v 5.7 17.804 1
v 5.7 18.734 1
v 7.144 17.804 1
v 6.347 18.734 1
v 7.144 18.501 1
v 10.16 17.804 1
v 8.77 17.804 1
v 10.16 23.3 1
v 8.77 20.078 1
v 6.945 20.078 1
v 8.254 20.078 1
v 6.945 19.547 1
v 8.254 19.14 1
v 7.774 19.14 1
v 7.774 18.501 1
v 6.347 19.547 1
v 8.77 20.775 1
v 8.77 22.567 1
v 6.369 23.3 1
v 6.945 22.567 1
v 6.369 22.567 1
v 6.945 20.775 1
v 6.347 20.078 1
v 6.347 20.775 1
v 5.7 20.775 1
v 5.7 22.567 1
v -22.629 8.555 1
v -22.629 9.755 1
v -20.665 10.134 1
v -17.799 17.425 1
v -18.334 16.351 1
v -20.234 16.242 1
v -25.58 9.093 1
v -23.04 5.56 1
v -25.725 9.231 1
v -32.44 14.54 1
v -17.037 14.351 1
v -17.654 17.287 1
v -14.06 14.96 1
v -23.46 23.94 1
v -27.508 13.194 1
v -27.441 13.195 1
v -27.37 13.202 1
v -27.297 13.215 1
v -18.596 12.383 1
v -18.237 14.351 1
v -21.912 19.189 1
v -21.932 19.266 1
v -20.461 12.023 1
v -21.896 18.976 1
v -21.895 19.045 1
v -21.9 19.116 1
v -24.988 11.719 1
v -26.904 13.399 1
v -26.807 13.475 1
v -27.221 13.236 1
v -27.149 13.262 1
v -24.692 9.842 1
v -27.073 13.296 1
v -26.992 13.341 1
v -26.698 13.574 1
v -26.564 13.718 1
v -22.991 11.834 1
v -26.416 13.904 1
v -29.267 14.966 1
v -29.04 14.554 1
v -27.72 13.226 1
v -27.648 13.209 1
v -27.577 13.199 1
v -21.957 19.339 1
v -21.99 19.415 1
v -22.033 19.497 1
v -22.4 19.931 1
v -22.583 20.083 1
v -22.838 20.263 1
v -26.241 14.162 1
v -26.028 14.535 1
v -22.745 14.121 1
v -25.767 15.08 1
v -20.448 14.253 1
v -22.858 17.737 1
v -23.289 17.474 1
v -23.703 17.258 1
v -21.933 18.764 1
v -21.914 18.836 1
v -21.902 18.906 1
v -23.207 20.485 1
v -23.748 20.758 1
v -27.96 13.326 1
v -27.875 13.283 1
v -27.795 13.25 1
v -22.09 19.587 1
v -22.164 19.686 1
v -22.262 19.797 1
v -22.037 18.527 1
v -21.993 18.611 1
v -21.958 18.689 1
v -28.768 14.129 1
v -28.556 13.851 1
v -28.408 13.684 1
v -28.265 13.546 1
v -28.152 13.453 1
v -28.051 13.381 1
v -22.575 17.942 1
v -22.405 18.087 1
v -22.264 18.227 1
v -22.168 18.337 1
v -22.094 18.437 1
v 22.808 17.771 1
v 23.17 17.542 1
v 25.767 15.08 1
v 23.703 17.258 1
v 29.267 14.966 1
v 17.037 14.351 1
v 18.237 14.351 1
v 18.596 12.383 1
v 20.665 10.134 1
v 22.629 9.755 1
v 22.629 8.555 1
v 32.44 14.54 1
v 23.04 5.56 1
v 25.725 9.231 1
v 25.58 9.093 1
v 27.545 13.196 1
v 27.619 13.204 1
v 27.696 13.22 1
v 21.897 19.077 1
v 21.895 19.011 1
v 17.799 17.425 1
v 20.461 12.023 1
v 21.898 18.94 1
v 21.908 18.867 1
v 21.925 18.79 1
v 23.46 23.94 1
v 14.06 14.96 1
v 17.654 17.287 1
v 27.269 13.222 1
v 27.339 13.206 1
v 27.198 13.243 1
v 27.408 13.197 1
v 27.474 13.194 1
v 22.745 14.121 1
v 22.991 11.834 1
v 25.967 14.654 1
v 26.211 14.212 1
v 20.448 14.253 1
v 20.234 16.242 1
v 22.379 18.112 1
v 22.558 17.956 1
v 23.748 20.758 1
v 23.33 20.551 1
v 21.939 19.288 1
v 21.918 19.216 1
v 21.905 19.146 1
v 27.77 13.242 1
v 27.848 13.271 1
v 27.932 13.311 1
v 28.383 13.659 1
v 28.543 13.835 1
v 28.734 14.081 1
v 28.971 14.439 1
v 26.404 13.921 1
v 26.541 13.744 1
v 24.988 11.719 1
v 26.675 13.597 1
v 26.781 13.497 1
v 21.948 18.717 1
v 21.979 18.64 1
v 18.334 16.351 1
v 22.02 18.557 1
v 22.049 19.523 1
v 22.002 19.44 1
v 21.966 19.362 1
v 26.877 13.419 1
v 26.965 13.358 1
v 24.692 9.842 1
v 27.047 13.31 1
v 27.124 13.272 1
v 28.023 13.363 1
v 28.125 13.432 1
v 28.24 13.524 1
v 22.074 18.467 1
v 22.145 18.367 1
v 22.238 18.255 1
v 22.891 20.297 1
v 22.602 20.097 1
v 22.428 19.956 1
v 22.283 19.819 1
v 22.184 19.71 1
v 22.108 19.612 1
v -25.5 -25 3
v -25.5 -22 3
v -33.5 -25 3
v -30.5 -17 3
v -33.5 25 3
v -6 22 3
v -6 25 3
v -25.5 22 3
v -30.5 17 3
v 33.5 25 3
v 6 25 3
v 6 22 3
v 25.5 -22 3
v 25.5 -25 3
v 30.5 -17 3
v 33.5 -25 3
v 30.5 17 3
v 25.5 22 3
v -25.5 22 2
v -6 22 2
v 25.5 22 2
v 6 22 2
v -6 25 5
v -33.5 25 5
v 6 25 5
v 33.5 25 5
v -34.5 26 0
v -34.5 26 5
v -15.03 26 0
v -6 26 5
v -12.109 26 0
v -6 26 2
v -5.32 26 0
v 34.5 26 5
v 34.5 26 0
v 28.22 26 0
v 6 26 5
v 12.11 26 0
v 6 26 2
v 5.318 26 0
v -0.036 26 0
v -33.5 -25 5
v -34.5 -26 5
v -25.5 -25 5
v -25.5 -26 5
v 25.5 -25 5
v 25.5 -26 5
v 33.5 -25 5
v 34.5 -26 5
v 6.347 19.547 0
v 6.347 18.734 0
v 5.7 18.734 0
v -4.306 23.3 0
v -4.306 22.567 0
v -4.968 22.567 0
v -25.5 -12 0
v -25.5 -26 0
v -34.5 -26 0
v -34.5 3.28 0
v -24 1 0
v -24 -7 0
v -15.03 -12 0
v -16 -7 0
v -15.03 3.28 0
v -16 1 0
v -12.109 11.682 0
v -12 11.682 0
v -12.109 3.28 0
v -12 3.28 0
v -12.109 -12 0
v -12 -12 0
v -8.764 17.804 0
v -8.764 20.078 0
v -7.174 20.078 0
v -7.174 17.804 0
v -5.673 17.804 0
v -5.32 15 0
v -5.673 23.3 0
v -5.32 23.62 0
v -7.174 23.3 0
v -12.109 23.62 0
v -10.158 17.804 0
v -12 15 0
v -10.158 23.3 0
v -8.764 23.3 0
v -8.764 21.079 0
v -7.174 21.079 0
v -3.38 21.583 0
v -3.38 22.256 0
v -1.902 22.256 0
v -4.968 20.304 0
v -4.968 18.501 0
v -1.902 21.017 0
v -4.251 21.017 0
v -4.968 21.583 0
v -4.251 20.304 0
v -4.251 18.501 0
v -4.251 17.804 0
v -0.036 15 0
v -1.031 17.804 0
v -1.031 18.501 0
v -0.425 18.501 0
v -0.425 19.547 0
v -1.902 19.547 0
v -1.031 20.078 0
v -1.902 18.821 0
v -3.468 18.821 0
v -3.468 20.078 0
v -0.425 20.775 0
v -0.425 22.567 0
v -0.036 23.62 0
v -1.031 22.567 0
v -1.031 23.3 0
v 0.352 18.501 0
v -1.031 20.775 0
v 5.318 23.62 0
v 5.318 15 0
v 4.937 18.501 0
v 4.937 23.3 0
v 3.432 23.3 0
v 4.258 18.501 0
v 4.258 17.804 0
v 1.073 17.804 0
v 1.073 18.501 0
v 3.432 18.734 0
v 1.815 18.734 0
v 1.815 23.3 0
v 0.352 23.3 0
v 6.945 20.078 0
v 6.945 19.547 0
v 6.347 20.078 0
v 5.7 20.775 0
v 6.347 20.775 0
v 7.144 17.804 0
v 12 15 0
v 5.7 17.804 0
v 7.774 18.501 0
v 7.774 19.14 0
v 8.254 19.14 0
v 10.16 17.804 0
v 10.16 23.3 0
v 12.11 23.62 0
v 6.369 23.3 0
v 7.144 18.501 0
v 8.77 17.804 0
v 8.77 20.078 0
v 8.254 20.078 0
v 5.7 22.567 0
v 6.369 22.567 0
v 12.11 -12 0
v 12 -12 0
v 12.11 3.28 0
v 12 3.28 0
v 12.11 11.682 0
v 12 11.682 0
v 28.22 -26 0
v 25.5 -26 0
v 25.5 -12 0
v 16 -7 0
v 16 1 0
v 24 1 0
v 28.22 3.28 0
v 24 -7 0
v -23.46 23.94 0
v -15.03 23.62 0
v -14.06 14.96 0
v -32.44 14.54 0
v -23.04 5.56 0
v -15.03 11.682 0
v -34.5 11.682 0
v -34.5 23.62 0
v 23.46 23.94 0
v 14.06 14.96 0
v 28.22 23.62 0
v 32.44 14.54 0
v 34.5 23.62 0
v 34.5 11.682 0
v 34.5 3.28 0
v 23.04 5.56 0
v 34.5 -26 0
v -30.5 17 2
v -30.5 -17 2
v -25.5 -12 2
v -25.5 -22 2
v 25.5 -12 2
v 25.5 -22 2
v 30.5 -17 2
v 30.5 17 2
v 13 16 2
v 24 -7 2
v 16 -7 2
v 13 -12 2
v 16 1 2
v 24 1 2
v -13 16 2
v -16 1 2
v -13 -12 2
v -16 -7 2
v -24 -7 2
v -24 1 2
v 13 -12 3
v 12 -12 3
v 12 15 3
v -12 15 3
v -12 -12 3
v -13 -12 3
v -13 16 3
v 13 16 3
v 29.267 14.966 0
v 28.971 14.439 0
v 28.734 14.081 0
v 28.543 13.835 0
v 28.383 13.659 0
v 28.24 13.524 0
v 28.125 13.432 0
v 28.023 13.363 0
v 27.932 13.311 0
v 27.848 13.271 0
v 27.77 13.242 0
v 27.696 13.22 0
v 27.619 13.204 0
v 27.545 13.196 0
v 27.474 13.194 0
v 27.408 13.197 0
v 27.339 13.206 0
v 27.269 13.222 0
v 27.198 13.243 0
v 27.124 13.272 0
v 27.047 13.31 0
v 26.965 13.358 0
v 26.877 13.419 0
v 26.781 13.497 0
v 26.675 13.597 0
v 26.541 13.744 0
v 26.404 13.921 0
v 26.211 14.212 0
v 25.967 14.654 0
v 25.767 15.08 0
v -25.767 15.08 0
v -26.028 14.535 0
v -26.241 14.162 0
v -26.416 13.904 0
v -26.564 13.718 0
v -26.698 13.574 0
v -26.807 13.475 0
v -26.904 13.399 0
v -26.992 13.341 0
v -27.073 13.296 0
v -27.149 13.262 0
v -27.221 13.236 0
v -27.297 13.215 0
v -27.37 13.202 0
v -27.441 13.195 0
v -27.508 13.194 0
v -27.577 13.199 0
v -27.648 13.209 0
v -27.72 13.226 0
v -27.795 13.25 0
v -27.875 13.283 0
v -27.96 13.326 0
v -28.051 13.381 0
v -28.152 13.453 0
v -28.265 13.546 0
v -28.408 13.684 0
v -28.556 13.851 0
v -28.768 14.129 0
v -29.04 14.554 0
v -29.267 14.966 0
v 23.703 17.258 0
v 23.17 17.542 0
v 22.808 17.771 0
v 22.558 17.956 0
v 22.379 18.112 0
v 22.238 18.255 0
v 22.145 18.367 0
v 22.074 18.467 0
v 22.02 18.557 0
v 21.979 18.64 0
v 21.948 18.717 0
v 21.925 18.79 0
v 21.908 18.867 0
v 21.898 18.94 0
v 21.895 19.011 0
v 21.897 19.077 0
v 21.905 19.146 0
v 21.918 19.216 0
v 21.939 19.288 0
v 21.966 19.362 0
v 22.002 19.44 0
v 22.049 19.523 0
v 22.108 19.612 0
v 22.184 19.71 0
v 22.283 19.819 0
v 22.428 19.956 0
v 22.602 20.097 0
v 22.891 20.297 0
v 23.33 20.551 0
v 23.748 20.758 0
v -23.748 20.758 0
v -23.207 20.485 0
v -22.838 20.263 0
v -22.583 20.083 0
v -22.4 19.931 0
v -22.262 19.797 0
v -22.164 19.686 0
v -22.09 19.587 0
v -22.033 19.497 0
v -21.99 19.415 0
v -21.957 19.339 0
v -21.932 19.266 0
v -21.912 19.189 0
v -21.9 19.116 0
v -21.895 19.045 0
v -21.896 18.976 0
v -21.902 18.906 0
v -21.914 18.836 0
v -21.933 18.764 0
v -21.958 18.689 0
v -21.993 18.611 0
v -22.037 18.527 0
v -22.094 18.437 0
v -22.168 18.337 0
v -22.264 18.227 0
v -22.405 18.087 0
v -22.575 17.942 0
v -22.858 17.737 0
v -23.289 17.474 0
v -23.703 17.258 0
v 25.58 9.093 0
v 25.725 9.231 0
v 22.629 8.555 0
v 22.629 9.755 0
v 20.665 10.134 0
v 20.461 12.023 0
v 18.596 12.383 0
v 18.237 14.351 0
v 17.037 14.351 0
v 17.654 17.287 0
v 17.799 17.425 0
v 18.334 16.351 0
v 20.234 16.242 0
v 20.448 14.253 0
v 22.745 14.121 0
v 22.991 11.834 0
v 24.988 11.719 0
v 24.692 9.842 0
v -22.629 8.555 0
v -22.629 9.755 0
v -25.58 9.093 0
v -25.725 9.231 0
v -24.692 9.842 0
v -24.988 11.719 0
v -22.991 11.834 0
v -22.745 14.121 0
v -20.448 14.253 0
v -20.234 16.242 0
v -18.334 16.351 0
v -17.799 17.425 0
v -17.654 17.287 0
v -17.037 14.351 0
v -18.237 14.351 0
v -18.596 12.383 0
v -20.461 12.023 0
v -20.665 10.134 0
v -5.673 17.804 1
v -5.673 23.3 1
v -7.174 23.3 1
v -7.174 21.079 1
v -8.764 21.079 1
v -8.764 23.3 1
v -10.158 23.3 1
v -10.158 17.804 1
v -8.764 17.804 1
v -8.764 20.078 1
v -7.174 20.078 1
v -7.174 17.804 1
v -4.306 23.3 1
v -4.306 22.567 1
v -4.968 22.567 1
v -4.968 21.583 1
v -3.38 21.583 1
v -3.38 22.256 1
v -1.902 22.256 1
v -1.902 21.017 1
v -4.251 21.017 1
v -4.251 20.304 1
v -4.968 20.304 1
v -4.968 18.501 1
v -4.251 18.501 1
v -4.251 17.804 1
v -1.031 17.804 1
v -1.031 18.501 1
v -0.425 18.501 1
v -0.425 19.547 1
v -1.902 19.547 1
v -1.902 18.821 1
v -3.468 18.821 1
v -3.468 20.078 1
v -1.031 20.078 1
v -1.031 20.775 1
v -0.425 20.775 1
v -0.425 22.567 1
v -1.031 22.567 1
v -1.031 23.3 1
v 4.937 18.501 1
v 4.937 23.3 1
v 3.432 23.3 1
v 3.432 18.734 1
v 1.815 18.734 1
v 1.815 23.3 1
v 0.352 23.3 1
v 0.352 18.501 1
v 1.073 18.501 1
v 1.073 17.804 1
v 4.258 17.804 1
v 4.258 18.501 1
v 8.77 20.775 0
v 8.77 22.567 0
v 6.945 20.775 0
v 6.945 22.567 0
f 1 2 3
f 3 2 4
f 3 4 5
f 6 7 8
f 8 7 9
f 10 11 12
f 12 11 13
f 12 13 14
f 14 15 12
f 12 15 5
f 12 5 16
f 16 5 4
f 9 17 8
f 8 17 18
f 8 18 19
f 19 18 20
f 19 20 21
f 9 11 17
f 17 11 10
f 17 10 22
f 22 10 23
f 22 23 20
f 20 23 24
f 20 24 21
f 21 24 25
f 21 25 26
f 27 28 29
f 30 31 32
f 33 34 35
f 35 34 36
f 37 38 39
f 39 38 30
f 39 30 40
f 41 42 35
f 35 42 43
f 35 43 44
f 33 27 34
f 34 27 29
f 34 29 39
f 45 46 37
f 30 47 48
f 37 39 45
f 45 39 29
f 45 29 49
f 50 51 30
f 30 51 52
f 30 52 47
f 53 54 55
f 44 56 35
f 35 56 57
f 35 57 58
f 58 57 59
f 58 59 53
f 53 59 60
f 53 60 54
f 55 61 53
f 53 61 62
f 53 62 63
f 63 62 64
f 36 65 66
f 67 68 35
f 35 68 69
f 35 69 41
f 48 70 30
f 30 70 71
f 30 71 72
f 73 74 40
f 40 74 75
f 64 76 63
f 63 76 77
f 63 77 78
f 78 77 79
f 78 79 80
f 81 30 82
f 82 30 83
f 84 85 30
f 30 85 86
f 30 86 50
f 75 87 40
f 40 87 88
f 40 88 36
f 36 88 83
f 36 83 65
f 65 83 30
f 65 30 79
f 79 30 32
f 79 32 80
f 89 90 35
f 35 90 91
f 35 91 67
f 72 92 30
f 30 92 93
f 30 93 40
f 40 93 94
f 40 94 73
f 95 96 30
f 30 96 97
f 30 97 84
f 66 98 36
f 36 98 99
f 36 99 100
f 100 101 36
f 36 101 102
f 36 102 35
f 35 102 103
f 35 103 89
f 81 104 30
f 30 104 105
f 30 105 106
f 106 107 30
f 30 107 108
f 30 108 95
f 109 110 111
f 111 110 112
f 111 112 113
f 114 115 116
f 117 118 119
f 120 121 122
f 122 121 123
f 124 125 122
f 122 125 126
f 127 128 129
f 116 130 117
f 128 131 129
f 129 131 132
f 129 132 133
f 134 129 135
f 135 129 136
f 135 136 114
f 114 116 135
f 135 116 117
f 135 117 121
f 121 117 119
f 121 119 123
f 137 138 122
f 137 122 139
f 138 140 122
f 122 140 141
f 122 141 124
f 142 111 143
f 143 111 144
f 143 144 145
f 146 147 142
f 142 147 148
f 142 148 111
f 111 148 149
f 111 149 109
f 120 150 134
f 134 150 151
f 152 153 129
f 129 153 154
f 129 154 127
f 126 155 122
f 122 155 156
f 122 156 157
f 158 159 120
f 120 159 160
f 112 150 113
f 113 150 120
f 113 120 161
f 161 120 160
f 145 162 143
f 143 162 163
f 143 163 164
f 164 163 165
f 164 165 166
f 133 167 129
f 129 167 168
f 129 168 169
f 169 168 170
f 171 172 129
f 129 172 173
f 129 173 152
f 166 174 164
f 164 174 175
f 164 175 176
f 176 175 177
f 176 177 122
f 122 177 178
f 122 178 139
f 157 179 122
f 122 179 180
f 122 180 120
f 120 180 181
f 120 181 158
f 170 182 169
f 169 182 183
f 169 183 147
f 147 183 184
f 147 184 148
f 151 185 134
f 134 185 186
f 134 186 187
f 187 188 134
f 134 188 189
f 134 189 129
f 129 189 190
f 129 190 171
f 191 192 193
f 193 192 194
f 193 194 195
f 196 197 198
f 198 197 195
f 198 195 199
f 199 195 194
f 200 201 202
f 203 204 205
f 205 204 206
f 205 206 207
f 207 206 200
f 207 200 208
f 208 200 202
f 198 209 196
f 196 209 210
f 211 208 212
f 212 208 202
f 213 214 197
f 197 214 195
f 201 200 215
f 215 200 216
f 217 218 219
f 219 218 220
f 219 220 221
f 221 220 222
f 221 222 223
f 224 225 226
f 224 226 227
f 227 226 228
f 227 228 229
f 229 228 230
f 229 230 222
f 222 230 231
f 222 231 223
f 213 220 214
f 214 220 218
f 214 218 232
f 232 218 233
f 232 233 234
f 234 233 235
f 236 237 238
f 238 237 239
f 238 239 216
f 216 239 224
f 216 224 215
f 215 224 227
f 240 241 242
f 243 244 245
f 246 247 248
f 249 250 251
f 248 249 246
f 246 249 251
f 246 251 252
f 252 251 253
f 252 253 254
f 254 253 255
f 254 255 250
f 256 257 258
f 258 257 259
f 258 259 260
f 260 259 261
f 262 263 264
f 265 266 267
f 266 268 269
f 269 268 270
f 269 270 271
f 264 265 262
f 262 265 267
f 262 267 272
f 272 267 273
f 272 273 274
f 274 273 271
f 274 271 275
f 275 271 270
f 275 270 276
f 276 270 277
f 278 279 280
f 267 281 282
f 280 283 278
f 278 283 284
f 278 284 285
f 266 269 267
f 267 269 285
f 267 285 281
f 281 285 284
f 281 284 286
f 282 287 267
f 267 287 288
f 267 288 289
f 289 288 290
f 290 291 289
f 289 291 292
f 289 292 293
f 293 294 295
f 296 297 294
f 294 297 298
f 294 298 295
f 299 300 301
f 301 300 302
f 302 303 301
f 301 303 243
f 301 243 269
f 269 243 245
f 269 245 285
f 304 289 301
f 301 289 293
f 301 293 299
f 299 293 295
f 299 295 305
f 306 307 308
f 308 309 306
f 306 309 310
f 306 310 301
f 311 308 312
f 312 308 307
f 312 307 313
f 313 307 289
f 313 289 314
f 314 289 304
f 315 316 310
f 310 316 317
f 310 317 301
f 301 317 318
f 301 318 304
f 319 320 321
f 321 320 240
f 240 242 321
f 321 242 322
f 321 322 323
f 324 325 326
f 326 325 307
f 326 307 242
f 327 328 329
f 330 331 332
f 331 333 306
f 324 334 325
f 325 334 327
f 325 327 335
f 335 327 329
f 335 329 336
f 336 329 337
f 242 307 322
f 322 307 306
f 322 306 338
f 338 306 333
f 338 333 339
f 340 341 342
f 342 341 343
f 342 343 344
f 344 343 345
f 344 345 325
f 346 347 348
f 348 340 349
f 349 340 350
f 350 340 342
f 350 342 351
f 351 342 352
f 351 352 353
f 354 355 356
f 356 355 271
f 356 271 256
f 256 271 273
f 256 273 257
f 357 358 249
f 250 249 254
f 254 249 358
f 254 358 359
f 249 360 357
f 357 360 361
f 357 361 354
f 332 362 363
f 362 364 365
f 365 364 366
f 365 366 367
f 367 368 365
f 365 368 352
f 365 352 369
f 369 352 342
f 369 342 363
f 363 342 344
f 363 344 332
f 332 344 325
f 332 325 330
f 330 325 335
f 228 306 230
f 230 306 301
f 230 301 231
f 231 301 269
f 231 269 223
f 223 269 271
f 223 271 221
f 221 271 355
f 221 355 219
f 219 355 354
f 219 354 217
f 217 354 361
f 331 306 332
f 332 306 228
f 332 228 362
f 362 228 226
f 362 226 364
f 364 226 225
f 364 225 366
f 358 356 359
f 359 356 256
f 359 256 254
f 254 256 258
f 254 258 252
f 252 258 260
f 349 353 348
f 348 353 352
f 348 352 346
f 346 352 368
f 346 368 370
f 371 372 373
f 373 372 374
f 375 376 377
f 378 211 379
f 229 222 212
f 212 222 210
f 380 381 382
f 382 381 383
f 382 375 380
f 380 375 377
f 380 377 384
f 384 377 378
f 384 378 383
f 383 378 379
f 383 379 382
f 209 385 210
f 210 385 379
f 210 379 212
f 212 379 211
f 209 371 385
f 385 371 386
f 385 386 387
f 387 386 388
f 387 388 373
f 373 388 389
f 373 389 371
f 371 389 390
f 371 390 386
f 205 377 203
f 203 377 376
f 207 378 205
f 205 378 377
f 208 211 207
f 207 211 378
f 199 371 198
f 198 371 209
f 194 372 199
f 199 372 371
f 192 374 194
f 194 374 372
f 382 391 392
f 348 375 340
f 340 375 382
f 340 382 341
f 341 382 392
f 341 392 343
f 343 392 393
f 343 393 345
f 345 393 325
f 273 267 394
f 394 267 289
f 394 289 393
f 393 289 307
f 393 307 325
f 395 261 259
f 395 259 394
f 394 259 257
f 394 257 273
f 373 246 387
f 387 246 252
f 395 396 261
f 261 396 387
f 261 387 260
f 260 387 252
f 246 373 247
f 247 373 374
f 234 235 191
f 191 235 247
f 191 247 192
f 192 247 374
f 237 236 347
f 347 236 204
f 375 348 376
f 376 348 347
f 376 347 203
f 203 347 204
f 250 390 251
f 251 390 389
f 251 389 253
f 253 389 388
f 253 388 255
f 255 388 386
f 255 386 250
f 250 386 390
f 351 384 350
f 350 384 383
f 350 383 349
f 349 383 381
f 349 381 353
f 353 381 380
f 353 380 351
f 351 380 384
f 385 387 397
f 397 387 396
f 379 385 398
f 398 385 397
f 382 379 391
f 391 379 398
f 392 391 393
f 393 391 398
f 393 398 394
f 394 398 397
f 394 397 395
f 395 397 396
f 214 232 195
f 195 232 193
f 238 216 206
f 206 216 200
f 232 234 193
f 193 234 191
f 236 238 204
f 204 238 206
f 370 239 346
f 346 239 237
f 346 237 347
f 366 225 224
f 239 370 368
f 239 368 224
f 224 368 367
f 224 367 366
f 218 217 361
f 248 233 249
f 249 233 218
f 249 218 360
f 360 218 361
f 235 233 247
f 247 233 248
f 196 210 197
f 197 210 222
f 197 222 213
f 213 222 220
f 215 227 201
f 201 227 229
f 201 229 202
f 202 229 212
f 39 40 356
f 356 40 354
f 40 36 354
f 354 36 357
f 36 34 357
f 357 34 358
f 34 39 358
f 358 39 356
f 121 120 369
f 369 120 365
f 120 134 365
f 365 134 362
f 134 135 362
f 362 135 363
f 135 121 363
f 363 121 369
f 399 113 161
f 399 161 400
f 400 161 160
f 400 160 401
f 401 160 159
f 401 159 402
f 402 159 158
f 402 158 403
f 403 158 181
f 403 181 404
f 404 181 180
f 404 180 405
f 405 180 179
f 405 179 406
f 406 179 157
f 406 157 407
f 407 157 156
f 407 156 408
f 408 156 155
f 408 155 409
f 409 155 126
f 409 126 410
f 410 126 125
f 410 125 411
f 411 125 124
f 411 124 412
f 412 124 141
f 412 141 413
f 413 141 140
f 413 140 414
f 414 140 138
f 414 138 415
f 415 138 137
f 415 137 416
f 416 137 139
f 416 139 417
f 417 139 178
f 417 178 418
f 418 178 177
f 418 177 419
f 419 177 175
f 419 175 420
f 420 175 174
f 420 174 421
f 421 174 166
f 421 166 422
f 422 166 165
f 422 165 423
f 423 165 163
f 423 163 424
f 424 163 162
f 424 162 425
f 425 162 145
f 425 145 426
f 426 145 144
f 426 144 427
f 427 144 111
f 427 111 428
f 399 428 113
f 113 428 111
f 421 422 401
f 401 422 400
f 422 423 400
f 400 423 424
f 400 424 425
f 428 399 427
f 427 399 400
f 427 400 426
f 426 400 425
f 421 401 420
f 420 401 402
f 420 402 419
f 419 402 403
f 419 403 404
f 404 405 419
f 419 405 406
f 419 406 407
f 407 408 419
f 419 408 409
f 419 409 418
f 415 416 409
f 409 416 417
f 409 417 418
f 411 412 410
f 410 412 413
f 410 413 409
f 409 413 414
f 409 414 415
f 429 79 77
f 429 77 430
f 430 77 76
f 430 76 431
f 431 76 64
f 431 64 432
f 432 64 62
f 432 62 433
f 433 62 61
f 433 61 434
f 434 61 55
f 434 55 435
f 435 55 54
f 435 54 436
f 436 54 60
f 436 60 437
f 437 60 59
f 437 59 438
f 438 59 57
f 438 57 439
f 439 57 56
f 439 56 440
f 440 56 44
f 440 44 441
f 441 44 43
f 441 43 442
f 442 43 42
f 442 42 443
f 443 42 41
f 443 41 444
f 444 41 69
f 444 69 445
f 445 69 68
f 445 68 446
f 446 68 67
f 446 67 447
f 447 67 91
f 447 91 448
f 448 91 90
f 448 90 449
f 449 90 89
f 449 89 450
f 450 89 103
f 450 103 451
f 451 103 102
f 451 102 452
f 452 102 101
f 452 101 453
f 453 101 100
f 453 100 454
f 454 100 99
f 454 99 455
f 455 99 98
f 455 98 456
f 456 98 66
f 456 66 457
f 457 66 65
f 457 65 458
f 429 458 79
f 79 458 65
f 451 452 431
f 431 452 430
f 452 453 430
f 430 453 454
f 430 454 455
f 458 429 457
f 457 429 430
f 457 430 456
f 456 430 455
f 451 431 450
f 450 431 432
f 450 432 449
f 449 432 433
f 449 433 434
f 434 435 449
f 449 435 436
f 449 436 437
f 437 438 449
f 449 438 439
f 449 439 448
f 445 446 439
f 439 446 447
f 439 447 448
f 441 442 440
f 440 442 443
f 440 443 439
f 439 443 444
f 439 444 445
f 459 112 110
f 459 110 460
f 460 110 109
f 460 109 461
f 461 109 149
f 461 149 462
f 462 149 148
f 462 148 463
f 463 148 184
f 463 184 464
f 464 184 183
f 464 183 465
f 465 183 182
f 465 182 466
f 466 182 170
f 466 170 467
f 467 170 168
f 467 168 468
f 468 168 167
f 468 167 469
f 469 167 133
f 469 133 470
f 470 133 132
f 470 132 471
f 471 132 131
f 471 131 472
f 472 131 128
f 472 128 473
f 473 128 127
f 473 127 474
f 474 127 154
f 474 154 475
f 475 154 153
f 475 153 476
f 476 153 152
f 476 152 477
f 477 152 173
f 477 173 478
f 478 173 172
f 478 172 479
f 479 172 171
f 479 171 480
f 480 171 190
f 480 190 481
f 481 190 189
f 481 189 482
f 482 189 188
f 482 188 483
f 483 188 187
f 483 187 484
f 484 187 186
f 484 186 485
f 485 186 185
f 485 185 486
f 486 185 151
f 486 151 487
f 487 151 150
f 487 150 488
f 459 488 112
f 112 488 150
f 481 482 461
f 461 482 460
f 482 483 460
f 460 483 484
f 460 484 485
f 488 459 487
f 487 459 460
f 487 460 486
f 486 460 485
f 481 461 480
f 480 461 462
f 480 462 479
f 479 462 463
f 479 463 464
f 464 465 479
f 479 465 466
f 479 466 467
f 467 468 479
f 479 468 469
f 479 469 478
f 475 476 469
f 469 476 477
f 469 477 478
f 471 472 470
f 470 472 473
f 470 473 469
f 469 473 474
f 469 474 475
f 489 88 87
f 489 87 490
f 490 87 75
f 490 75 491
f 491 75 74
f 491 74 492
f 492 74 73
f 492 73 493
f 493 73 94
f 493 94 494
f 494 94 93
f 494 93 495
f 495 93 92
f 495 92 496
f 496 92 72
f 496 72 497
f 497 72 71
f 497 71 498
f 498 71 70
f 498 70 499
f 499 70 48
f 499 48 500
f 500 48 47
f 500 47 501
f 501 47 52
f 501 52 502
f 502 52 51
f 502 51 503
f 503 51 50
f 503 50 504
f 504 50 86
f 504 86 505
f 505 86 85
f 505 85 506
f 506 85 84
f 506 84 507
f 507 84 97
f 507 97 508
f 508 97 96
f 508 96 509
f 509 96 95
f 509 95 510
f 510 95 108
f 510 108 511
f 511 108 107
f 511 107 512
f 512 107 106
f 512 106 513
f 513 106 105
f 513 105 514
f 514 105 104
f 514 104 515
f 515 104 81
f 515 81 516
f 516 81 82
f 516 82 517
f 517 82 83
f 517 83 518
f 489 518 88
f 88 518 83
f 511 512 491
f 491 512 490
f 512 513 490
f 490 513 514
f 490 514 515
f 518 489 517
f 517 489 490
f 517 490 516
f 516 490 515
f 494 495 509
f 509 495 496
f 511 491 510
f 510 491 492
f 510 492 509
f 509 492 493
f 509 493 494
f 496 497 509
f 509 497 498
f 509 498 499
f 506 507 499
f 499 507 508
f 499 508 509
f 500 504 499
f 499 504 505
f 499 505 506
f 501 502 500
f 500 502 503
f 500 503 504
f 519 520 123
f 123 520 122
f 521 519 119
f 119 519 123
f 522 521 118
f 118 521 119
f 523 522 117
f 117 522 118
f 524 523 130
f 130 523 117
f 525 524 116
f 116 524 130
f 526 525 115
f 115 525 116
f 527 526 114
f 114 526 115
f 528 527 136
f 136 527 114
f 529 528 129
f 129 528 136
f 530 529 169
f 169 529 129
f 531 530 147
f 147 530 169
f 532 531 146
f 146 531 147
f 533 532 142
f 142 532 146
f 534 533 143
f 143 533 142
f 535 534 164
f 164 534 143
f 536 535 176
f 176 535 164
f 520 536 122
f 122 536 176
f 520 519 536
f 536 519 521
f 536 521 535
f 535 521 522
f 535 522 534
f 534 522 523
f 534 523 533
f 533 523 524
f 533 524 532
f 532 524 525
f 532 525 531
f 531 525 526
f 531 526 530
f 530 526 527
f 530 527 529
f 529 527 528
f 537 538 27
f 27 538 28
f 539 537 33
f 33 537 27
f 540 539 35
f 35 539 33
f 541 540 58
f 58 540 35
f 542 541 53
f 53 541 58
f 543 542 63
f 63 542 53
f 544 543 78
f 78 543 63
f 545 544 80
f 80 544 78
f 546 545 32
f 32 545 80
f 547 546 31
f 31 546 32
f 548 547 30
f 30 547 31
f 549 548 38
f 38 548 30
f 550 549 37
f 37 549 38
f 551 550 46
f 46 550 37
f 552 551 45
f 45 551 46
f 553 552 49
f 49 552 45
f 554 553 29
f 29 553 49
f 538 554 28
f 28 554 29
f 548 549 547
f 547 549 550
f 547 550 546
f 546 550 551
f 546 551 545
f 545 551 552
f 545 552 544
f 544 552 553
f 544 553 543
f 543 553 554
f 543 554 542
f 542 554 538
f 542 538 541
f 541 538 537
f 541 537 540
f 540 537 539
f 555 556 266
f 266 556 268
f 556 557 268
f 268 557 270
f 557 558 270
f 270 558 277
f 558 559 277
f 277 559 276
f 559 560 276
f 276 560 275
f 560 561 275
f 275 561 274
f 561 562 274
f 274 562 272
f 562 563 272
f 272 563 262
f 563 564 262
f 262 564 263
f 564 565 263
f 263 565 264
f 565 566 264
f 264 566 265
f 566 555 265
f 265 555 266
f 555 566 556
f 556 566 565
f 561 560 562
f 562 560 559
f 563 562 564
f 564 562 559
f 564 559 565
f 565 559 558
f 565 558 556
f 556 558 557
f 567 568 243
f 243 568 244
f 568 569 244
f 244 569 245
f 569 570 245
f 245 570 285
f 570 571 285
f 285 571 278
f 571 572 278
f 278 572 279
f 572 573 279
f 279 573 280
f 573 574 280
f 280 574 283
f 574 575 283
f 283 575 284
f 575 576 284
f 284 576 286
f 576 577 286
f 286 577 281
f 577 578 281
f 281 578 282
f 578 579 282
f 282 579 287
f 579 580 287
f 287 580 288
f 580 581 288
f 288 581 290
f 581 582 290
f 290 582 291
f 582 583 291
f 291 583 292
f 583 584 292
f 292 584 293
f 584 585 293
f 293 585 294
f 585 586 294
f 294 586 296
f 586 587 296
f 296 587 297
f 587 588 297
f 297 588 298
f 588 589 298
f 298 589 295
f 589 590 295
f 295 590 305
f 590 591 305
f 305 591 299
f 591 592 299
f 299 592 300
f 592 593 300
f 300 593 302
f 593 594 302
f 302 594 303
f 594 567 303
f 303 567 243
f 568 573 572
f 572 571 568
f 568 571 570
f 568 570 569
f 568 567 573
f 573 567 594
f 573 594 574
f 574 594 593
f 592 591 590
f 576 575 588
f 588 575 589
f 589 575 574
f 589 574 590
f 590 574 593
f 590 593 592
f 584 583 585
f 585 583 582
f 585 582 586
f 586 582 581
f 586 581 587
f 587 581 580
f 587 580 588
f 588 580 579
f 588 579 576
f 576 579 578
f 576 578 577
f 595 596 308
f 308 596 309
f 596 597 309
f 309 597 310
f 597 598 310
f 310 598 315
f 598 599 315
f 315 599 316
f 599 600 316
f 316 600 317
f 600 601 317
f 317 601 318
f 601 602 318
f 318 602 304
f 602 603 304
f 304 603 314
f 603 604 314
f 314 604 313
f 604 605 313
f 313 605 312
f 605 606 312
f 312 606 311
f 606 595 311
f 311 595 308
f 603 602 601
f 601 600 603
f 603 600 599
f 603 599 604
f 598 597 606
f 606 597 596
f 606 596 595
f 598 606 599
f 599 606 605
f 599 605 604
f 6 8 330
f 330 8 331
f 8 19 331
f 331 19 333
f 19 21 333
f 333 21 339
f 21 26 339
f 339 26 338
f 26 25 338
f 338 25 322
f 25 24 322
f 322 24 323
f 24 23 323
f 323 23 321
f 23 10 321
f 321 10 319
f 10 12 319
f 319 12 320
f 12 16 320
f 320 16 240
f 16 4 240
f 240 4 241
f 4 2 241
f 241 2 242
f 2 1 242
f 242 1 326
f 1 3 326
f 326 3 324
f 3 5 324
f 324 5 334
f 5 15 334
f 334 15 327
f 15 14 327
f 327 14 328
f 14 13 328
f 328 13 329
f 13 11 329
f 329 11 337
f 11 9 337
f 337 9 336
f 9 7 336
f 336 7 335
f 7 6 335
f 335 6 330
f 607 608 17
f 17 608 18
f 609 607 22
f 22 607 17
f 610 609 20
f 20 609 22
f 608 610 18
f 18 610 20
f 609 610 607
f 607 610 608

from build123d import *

# Parameters (mm, degrees)
SKICA1_W                    = 67
SKICA1_H                    = 50
P_IDAT_VYSUNUT_M1_DEPTH     = 3
ODEBRAT_VYSUNUT_M1_DEPTH    = 1
SKICA3_W                    = 8
SKICA3_H                    = 8
ODEBRAT_VYSUNUT_M2_DEPTH    = 4
VYSUNOUT_TENKOST_NN_1_DEPTH = 1
VYSUNOUT_TENKOST_NN_2_DEPTH = 5
SKICA6_W                    = 12
SKICA6_H                    = 4
ODEBRAT_VYSUNUT_M3_DEPTH    = 4
ODEBRAT_VYSUNUT_M5_DEPTH    = 1
P_IDAT_START                = -1
P_IDAT_VYSUNUT_M5_DEPTH     = 1
P_IDAT_VYSUNUT_M6_DEPTH     = 1
ODEBRAT_VYSUNUT_M6_DEPTH    = 1
SKICA13_W                   = 1.825387876
SKICA13_H                   = 1.792199005
P_IDAT_VYSUNUT_M7_DEPTH     = 1


with BuildPart() as part:
    # Skica1 → Přidat vysunutím1 (new body)
    with BuildSketch(Plane.XY):
        Rectangle(SKICA1_W, SKICA1_H)
    extrude(amount=P_IDAT_VYSUNUT_M1_DEPTH)

    # Skica2 → Odebrat vysunutím1 (cut)
    with BuildSketch(Plane.XY.offset(3)):
        Polygon((-25.5, -22), (-30.5, -17), (-30.5, 17), (-25.5, 22), (25.5, 22), (30.5, 17), (30.5, -17), (25.5, -22), align=None)
    extrude(amount=-ODEBRAT_VYSUNUT_M1_DEPTH, mode=Mode.SUBTRACT)

    # Skica3 → Odebrat vysunutím2 (cut, through all)
    with BuildSketch(Plane(origin=(0, 0, 0), x_dir=(-1, 0, 0), z_dir=(0, 0, -1))):
        with Locations((20, -3)):
            Rectangle(SKICA3_W, SKICA3_H)
        with Locations((-20, -3)):
            Rectangle(SKICA3_W, SKICA3_H)
        Polygon((25.5, -25), (-25.5, -25), (-25.5, -12), (-12, -12), (-12, 15), (12, 15), (12, -12), (25.5, -12), align=None)
    extrude(amount=-ODEBRAT_VYSUNUT_M2_DEPTH, mode=Mode.SUBTRACT)

    # Skica4 → Vysunout tenkostěnný1 (add)
    with BuildSketch(Plane.XY.offset(2)):
        Polygon((-12, -12), (-12, 15), (12, 15), (12, -12), (13, -12), (13, 16), (-13, 16), (-13, -12), align=None)
    extrude(amount=VYSUNOUT_TENKOST_NN_1_DEPTH)

    # Skica5 → Vysunout tenkostěnný2 (add)
    with BuildSketch(Plane(origin=(0, 0, 0), x_dir=(-1, 0, 0), z_dir=(0, 0, -1))):
        Polygon((-25.5, -25), (-33.5, -25), (-33.5, 25), (33.5, 25), (33.5, -25), (25.5, -25), (25.5, -26), (34.5, -26), (34.5, 26), (-34.5, 26), (-34.5, -26), (-25.5, -26), align=None)
    extrude(amount=-VYSUNOUT_TENKOST_NN_2_DEPTH)

    # Skica6 → Odebrat vysunutím3 (cut, through all)
    with BuildSketch(Plane.XY.offset(2)):
        with Locations((0, 24)):
            Rectangle(SKICA6_W, SKICA6_H)
    extrude(amount=ODEBRAT_VYSUNUT_M3_DEPTH, mode=Mode.SUBTRACT)

    # Skica7 → Odebrat vysunutím5 (cut)
    with BuildSketch(Plane(origin=(0, 0, 0), x_dir=(-1, 0, 0), z_dir=(0, 0, -1))):
        Polygon((-32.44, 14.540476732), (-23.459523268, 23.94), (-14.06, 14.959523268), (-23.040476732, 5.56), align=None)
        Polygon((14.06, 14.959523268), (23.040476732, 5.56), (32.44, 14.540476732), (23.459523268, 23.94), align=None)
    extrude(amount=-ODEBRAT_VYSUNUT_M5_DEPTH, mode=Mode.SUBTRACT)

    # Skica8 → Přidat vysunutím5 (add)
    with BuildSketch(Plane(origin=(0, 0, 0), x_dir=(-1, 0, 0), z_dir=(0, 0, -1)).offset(P_IDAT_START)):
        with BuildLine():
            Line((-29.266904741, 14.966465555), (-25.766904741, 15.0801236))
            add(Edge.make_bspline(
                [(-29.266904741, 14.966465555), (-27.398369795, 11.364860762), (-25.766904741, 15.0801236)],
                knots=[0, 0, 0, 1, 1, 1], degree=2))
        make_face()
        with BuildLine():
            Line((-23.70327201, 17.257603785), (-23.747591798, 20.757603785))
            add(Edge.make_bspline(
                [(-23.70327201, 17.257603785), (-20.063848901, 19.047335046), (-23.747591798, 20.757603785)],
                knots=[0, 0, 0, 1, 1, 1], degree=2))
        make_face()
        with BuildLine():
            Line((29.266904741, 14.966465555), (25.766904741, 15.0801236))
            add(Edge.make_bspline(
                [(29.266904741, 14.966465555), (27.398369795, 11.364860762), (25.766904741, 15.0801236)],
                knots=[0, 0, 0, 1, 1, 1], degree=2))
        make_face()
        with BuildLine():
            Line((23.70327201, 17.257603785), (23.747591798, 20.757603785))
            add(Edge.make_bspline(
                [(23.70327201, 17.257603785), (20.063848901, 19.047335046), (23.747591798, 20.757603785)],
                knots=[0, 0, 0, 1, 1, 1], degree=2))
        make_face()
    extrude(amount=P_IDAT_VYSUNUT_M5_DEPTH)

    # Skica11 → Přidat vysunutím6 (add)
    with BuildSketch(Plane(origin=(0, 0, 0), x_dir=(-1, 0, 0), z_dir=(0, 0, -1)).offset(P_IDAT_START)):
        Polygon((-25.724541131, 9.230843392), (-24.69196981, 9.842232358), (-24.987531509, 11.719102967), (-22.99084361, 11.83415701), (-22.744580902, 14.120935241), (-20.448389818, 14.25324739), (-20.234248333, 16.2417502), (-18.334248333, 16.35123285), (-17.798682715, 17.425090135), (-17.654074665, 17.286928954), (-17.037308405, 14.35101353), (-18.237308405, 14.35101353), (-18.595837474, 12.383411714), (-20.461373652, 12.023169065), (-20.664808063, 10.134091396), (-22.628530356, 9.754888608), (-22.628530356, 8.554888608), (-25.57993308, 9.092682212), align=None)
        Polygon((22.628530356, 8.554888608), (25.57993308, 9.092682212), (25.724541131, 9.230843392), (24.69196981, 9.842232358), (24.987531509, 11.719102967), (22.99084361, 11.83415701), (22.744580902, 14.120935241), (20.448389818, 14.25324739), (20.234248333, 16.2417502), (18.334248333, 16.35123285), (17.798682715, 17.425090135), (17.654074665, 17.286928954), (17.037308405, 14.35101353), (18.237308405, 14.35101353), (18.595837474, 12.383411714), (20.461373652, 12.023169065), (20.664808063, 10.134091396), (22.628530356, 9.754888608), align=None)
    extrude(amount=P_IDAT_VYSUNUT_M6_DEPTH)

    # Skica12 → Odebrat vysunutím6 (cut)
    with BuildSketch(Plane(origin=(0, 0, 0), x_dir=(-1, 0, 0), z_dir=(0, 0, -1))):
        Polygon((-10.16, 23.3), (-6.369480049, 23.3), (-6.369480049, 22.56693444), (-5.70000808, 22.56693444), (-5.70000808, 20.774735435), (-6.347191054, 20.774735435), (-6.347191054, 20.077769155), (-6.944590723, 20.077769155), (-6.944590723, 19.546747227), (-6.347191054, 19.546747227), (-6.347191054, 18.733619901), (-5.70000808, 18.733619901), (-5.70000808, 17.804331528), (-7.143723945, 17.804331528), (-7.143723945, 18.501297807), (-7.774312484, 18.501297807), (-7.774312484, 19.140183564), (-8.253595527, 19.140183564), (-8.253595527, 20.077769155), (-8.769978599, 20.077769155), (-8.769978599, 17.804331528), (-10.16, 17.804331528), align=None)
        Polygon((-4.936617449, 23.3), (-3.432005952, 23.3), (-3.432005952, 18.733619901), (-1.815348918, 18.733619901), (-1.815348918, 23.3), (-0.352474449, 23.3), (-0.352474449, 18.501297807), (-1.072767186, 18.501297807), (-1.072767186, 17.804331528), (-4.258061738, 17.804331528), (-4.258061738, 18.501297807), (-4.936617449, 18.501297807), align=None)
        Polygon((4.306009733, 22.56693444), (4.967857854, 22.56693444), (4.967857854, 21.583119882), (3.37998692, 21.583119882), (3.37998692, 22.255759653), (1.9023848, 22.255759653), (1.9023848, 21.01680995), (4.251110557, 21.01680995), (4.251110557, 20.304001629), (4.967857854, 20.304001629), (4.967857854, 18.501297807), (4.251110557, 18.501297807), (4.251110557, 17.804331528), (1.031261162, 17.804331528), (1.031261162, 18.501297807), (0.42478268, 18.501297807), (0.42478268, 19.546747227), (1.9023848, 19.546747227), (1.9023848, 18.820740686), (3.468201971, 18.820740686), (3.468201971, 20.077769155), (1.031261162, 20.077769155), (1.031261162, 20.774735435), (0.42478268, 20.774735435), (0.42478268, 22.56693444), (1.031261162, 22.56693444), (1.031261162, 23.3), (4.306009733, 23.3), align=None)
        Polygon((5.672754202, 23.3), (7.173807496, 23.3), (7.173807496, 21.079366958), (8.764209199, 21.079366958), (8.764209199, 23.3), (10.1580444, 23.3), (10.1580444, 17.804331528), (8.764209199, 17.804331528), (8.764209199, 20.077769155), (7.173807496, 20.077769155), (7.173807496, 17.804331528), (5.672754202, 17.804331528), align=None)
    extrude(amount=-ODEBRAT_VYSUNUT_M6_DEPTH, mode=Mode.SUBTRACT)

    # Skica13 → Přidat vysunutím7 (add)
    with BuildSketch(Plane(origin=(0, 0, 0), x_dir=(-1, 0, 0), z_dir=(0, 0, -1)).offset(P_IDAT_START)):
        with Locations((-7.857284661, 21.670834938)):
            Rectangle(SKICA13_W, SKICA13_H)
    extrude(amount=P_IDAT_VYSUNUT_M7_DEPTH)


solid = part.part
